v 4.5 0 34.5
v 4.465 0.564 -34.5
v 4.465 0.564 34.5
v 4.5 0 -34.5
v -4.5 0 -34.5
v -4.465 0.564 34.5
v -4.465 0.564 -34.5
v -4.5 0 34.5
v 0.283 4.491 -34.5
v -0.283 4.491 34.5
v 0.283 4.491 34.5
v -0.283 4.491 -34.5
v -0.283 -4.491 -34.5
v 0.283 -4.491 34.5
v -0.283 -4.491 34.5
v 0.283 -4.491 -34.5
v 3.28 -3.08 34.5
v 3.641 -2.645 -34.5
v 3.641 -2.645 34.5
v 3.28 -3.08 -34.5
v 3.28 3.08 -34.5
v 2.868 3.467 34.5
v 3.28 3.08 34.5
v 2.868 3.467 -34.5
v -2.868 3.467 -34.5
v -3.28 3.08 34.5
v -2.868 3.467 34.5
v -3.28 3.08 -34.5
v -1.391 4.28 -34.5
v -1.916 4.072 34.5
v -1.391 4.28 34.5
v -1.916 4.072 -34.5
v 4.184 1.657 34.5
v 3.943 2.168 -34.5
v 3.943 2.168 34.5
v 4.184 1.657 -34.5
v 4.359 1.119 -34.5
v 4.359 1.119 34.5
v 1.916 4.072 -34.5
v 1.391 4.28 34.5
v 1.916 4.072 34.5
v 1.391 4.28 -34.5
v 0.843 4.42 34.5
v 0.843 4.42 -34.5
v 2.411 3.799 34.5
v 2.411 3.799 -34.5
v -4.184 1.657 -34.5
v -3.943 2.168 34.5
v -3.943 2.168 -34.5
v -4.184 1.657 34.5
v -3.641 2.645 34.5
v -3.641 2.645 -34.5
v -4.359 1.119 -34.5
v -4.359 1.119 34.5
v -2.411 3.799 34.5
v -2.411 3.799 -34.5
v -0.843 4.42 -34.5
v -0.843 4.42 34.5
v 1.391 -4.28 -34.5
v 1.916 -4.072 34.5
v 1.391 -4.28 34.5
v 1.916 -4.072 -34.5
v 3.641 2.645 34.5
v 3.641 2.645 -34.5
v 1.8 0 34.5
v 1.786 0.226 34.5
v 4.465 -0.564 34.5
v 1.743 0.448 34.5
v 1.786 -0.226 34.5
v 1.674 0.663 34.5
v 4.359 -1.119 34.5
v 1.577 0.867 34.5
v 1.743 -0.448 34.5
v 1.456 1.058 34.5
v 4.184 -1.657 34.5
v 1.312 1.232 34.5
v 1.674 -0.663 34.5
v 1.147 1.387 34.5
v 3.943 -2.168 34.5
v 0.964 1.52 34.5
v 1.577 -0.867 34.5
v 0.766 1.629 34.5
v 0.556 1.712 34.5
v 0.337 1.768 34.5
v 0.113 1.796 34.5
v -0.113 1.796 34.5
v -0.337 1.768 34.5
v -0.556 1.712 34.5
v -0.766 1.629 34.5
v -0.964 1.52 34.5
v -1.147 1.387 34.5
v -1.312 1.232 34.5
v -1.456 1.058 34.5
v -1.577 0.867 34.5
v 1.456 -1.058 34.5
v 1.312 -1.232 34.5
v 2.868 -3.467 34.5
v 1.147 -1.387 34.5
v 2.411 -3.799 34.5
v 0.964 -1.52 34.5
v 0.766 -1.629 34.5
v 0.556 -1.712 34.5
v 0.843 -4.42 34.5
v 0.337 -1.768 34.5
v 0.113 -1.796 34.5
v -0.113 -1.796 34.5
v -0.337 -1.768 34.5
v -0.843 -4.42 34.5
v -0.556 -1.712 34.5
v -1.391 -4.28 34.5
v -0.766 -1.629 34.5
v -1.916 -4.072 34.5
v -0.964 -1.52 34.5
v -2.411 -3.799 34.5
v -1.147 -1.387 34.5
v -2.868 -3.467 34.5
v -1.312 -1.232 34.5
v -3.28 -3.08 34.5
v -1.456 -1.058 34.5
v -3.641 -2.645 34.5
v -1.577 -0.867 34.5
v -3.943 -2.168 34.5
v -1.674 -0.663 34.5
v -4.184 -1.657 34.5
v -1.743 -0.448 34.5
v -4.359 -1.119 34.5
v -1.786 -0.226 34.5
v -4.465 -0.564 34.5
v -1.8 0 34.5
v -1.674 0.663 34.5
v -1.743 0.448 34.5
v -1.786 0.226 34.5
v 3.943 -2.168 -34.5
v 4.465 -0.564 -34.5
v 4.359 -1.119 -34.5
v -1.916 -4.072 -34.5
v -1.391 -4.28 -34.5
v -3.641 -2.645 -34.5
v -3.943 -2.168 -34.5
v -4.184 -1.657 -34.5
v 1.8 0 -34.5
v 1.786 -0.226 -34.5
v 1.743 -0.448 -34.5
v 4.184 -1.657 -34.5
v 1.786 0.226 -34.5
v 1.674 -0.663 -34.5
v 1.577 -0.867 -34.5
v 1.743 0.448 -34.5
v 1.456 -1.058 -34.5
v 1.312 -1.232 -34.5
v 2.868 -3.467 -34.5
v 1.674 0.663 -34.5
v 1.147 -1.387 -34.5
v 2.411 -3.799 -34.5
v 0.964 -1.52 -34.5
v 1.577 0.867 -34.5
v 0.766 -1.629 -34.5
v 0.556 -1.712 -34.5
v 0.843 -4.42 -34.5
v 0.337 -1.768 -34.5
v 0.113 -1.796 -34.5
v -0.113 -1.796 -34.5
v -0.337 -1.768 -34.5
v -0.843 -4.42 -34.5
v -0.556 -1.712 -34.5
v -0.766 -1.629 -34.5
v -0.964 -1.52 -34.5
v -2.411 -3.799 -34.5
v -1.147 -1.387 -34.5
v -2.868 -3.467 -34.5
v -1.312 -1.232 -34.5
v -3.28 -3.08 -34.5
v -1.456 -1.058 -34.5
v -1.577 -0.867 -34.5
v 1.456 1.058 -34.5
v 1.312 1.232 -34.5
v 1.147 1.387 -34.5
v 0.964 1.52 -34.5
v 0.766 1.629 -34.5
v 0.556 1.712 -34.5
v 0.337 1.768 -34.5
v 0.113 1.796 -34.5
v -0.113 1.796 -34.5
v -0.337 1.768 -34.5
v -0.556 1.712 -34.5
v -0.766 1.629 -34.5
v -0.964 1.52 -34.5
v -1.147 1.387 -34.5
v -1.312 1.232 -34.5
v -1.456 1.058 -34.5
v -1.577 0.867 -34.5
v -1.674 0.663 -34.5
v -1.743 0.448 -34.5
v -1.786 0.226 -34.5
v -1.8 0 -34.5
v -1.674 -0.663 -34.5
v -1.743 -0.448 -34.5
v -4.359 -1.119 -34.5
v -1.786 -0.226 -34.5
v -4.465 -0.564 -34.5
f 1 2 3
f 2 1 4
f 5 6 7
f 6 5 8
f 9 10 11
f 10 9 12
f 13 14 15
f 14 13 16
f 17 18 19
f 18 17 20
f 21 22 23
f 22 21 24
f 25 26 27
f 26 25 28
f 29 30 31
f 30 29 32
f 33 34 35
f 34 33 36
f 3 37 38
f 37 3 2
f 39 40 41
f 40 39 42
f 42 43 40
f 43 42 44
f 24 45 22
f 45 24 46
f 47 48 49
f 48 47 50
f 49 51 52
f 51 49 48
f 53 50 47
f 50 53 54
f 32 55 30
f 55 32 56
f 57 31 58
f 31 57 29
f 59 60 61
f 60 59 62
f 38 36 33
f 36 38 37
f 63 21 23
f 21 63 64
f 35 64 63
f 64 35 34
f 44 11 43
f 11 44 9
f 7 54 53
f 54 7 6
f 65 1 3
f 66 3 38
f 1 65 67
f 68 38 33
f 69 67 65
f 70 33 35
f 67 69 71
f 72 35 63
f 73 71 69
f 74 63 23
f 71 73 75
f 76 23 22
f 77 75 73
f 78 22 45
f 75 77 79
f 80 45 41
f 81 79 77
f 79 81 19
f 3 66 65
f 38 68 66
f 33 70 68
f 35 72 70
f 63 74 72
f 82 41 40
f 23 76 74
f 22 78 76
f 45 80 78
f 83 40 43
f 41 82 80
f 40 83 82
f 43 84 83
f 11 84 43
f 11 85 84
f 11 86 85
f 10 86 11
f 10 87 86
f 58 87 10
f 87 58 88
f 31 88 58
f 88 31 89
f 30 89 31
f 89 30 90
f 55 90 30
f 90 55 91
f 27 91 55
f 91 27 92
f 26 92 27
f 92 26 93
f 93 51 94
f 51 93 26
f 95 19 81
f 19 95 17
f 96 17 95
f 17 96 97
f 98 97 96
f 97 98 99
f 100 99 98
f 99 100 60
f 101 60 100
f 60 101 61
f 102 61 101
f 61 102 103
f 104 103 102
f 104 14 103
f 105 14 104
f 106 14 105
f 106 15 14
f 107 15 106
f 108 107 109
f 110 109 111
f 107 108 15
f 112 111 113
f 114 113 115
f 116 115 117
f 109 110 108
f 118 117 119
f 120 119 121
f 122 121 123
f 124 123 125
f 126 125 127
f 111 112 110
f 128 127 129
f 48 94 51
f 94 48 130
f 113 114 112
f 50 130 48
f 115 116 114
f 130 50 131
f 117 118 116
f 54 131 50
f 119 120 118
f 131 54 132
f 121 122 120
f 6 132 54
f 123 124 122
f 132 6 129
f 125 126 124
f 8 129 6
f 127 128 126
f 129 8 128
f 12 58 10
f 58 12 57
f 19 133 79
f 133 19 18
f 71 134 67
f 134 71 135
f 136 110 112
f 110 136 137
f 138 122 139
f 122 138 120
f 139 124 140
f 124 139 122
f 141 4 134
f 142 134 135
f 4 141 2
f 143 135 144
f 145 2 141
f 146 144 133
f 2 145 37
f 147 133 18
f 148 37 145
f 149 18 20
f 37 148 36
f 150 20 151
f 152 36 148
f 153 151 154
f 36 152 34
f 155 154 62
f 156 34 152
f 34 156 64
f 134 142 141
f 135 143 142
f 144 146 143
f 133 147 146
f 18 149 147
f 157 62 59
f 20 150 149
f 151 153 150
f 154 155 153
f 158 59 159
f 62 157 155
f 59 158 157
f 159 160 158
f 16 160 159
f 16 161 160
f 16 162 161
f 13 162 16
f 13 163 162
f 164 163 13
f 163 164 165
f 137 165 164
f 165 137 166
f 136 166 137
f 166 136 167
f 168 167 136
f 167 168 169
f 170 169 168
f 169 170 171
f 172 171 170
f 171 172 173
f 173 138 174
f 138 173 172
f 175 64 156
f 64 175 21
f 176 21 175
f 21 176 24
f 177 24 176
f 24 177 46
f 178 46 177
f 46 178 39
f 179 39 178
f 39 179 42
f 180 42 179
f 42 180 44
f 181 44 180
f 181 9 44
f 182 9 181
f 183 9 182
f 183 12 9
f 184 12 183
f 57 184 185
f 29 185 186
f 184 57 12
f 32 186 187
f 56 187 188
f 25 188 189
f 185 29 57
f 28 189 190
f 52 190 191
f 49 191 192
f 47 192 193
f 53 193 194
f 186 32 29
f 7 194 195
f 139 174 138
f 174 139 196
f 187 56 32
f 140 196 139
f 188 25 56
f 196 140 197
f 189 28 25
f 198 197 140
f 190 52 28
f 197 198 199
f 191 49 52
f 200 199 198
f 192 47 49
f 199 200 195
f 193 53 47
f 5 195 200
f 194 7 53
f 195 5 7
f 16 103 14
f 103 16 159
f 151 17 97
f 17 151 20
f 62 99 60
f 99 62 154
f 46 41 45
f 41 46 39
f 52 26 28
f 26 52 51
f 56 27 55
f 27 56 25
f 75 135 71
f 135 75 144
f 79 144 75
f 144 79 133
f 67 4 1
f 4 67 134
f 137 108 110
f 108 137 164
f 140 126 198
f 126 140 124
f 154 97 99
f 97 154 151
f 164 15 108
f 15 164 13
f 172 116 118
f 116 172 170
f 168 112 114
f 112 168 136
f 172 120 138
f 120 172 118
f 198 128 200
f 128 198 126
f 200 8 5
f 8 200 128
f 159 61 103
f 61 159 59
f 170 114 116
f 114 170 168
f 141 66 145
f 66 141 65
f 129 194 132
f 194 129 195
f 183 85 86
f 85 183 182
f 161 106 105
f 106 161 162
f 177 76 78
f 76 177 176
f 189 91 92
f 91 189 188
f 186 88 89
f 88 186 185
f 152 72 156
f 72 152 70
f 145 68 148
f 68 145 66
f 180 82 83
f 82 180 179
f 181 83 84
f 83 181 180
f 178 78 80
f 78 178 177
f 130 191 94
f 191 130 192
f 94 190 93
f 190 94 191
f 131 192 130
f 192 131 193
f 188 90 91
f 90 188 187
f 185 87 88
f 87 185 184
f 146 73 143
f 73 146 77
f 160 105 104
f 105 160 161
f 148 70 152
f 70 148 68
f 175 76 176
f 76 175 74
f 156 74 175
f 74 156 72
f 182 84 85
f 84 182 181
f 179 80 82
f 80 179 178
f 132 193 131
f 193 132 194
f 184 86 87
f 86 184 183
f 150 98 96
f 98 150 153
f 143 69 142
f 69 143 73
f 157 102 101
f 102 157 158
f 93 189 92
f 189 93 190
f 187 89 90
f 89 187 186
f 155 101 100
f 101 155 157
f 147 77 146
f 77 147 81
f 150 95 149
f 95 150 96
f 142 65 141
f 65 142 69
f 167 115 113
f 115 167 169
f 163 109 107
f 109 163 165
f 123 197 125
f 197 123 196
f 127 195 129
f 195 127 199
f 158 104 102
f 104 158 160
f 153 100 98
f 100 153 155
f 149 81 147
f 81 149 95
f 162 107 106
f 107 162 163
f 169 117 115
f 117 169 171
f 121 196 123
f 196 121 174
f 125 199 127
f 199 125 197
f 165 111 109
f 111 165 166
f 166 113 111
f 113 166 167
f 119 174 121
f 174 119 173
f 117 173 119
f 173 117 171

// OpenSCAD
$fn = 50;


difference() {
	union() {
		translate(v = [0, 0, -34.5000000000]) {
			cylinder(h = 69, r = 4.5000000000);
		}
	}
	union() {
		translate(v = [0, 0, -100.0000000000]) {
			cylinder(h = 200, r = 1.8000000000);
		}
	}
}
